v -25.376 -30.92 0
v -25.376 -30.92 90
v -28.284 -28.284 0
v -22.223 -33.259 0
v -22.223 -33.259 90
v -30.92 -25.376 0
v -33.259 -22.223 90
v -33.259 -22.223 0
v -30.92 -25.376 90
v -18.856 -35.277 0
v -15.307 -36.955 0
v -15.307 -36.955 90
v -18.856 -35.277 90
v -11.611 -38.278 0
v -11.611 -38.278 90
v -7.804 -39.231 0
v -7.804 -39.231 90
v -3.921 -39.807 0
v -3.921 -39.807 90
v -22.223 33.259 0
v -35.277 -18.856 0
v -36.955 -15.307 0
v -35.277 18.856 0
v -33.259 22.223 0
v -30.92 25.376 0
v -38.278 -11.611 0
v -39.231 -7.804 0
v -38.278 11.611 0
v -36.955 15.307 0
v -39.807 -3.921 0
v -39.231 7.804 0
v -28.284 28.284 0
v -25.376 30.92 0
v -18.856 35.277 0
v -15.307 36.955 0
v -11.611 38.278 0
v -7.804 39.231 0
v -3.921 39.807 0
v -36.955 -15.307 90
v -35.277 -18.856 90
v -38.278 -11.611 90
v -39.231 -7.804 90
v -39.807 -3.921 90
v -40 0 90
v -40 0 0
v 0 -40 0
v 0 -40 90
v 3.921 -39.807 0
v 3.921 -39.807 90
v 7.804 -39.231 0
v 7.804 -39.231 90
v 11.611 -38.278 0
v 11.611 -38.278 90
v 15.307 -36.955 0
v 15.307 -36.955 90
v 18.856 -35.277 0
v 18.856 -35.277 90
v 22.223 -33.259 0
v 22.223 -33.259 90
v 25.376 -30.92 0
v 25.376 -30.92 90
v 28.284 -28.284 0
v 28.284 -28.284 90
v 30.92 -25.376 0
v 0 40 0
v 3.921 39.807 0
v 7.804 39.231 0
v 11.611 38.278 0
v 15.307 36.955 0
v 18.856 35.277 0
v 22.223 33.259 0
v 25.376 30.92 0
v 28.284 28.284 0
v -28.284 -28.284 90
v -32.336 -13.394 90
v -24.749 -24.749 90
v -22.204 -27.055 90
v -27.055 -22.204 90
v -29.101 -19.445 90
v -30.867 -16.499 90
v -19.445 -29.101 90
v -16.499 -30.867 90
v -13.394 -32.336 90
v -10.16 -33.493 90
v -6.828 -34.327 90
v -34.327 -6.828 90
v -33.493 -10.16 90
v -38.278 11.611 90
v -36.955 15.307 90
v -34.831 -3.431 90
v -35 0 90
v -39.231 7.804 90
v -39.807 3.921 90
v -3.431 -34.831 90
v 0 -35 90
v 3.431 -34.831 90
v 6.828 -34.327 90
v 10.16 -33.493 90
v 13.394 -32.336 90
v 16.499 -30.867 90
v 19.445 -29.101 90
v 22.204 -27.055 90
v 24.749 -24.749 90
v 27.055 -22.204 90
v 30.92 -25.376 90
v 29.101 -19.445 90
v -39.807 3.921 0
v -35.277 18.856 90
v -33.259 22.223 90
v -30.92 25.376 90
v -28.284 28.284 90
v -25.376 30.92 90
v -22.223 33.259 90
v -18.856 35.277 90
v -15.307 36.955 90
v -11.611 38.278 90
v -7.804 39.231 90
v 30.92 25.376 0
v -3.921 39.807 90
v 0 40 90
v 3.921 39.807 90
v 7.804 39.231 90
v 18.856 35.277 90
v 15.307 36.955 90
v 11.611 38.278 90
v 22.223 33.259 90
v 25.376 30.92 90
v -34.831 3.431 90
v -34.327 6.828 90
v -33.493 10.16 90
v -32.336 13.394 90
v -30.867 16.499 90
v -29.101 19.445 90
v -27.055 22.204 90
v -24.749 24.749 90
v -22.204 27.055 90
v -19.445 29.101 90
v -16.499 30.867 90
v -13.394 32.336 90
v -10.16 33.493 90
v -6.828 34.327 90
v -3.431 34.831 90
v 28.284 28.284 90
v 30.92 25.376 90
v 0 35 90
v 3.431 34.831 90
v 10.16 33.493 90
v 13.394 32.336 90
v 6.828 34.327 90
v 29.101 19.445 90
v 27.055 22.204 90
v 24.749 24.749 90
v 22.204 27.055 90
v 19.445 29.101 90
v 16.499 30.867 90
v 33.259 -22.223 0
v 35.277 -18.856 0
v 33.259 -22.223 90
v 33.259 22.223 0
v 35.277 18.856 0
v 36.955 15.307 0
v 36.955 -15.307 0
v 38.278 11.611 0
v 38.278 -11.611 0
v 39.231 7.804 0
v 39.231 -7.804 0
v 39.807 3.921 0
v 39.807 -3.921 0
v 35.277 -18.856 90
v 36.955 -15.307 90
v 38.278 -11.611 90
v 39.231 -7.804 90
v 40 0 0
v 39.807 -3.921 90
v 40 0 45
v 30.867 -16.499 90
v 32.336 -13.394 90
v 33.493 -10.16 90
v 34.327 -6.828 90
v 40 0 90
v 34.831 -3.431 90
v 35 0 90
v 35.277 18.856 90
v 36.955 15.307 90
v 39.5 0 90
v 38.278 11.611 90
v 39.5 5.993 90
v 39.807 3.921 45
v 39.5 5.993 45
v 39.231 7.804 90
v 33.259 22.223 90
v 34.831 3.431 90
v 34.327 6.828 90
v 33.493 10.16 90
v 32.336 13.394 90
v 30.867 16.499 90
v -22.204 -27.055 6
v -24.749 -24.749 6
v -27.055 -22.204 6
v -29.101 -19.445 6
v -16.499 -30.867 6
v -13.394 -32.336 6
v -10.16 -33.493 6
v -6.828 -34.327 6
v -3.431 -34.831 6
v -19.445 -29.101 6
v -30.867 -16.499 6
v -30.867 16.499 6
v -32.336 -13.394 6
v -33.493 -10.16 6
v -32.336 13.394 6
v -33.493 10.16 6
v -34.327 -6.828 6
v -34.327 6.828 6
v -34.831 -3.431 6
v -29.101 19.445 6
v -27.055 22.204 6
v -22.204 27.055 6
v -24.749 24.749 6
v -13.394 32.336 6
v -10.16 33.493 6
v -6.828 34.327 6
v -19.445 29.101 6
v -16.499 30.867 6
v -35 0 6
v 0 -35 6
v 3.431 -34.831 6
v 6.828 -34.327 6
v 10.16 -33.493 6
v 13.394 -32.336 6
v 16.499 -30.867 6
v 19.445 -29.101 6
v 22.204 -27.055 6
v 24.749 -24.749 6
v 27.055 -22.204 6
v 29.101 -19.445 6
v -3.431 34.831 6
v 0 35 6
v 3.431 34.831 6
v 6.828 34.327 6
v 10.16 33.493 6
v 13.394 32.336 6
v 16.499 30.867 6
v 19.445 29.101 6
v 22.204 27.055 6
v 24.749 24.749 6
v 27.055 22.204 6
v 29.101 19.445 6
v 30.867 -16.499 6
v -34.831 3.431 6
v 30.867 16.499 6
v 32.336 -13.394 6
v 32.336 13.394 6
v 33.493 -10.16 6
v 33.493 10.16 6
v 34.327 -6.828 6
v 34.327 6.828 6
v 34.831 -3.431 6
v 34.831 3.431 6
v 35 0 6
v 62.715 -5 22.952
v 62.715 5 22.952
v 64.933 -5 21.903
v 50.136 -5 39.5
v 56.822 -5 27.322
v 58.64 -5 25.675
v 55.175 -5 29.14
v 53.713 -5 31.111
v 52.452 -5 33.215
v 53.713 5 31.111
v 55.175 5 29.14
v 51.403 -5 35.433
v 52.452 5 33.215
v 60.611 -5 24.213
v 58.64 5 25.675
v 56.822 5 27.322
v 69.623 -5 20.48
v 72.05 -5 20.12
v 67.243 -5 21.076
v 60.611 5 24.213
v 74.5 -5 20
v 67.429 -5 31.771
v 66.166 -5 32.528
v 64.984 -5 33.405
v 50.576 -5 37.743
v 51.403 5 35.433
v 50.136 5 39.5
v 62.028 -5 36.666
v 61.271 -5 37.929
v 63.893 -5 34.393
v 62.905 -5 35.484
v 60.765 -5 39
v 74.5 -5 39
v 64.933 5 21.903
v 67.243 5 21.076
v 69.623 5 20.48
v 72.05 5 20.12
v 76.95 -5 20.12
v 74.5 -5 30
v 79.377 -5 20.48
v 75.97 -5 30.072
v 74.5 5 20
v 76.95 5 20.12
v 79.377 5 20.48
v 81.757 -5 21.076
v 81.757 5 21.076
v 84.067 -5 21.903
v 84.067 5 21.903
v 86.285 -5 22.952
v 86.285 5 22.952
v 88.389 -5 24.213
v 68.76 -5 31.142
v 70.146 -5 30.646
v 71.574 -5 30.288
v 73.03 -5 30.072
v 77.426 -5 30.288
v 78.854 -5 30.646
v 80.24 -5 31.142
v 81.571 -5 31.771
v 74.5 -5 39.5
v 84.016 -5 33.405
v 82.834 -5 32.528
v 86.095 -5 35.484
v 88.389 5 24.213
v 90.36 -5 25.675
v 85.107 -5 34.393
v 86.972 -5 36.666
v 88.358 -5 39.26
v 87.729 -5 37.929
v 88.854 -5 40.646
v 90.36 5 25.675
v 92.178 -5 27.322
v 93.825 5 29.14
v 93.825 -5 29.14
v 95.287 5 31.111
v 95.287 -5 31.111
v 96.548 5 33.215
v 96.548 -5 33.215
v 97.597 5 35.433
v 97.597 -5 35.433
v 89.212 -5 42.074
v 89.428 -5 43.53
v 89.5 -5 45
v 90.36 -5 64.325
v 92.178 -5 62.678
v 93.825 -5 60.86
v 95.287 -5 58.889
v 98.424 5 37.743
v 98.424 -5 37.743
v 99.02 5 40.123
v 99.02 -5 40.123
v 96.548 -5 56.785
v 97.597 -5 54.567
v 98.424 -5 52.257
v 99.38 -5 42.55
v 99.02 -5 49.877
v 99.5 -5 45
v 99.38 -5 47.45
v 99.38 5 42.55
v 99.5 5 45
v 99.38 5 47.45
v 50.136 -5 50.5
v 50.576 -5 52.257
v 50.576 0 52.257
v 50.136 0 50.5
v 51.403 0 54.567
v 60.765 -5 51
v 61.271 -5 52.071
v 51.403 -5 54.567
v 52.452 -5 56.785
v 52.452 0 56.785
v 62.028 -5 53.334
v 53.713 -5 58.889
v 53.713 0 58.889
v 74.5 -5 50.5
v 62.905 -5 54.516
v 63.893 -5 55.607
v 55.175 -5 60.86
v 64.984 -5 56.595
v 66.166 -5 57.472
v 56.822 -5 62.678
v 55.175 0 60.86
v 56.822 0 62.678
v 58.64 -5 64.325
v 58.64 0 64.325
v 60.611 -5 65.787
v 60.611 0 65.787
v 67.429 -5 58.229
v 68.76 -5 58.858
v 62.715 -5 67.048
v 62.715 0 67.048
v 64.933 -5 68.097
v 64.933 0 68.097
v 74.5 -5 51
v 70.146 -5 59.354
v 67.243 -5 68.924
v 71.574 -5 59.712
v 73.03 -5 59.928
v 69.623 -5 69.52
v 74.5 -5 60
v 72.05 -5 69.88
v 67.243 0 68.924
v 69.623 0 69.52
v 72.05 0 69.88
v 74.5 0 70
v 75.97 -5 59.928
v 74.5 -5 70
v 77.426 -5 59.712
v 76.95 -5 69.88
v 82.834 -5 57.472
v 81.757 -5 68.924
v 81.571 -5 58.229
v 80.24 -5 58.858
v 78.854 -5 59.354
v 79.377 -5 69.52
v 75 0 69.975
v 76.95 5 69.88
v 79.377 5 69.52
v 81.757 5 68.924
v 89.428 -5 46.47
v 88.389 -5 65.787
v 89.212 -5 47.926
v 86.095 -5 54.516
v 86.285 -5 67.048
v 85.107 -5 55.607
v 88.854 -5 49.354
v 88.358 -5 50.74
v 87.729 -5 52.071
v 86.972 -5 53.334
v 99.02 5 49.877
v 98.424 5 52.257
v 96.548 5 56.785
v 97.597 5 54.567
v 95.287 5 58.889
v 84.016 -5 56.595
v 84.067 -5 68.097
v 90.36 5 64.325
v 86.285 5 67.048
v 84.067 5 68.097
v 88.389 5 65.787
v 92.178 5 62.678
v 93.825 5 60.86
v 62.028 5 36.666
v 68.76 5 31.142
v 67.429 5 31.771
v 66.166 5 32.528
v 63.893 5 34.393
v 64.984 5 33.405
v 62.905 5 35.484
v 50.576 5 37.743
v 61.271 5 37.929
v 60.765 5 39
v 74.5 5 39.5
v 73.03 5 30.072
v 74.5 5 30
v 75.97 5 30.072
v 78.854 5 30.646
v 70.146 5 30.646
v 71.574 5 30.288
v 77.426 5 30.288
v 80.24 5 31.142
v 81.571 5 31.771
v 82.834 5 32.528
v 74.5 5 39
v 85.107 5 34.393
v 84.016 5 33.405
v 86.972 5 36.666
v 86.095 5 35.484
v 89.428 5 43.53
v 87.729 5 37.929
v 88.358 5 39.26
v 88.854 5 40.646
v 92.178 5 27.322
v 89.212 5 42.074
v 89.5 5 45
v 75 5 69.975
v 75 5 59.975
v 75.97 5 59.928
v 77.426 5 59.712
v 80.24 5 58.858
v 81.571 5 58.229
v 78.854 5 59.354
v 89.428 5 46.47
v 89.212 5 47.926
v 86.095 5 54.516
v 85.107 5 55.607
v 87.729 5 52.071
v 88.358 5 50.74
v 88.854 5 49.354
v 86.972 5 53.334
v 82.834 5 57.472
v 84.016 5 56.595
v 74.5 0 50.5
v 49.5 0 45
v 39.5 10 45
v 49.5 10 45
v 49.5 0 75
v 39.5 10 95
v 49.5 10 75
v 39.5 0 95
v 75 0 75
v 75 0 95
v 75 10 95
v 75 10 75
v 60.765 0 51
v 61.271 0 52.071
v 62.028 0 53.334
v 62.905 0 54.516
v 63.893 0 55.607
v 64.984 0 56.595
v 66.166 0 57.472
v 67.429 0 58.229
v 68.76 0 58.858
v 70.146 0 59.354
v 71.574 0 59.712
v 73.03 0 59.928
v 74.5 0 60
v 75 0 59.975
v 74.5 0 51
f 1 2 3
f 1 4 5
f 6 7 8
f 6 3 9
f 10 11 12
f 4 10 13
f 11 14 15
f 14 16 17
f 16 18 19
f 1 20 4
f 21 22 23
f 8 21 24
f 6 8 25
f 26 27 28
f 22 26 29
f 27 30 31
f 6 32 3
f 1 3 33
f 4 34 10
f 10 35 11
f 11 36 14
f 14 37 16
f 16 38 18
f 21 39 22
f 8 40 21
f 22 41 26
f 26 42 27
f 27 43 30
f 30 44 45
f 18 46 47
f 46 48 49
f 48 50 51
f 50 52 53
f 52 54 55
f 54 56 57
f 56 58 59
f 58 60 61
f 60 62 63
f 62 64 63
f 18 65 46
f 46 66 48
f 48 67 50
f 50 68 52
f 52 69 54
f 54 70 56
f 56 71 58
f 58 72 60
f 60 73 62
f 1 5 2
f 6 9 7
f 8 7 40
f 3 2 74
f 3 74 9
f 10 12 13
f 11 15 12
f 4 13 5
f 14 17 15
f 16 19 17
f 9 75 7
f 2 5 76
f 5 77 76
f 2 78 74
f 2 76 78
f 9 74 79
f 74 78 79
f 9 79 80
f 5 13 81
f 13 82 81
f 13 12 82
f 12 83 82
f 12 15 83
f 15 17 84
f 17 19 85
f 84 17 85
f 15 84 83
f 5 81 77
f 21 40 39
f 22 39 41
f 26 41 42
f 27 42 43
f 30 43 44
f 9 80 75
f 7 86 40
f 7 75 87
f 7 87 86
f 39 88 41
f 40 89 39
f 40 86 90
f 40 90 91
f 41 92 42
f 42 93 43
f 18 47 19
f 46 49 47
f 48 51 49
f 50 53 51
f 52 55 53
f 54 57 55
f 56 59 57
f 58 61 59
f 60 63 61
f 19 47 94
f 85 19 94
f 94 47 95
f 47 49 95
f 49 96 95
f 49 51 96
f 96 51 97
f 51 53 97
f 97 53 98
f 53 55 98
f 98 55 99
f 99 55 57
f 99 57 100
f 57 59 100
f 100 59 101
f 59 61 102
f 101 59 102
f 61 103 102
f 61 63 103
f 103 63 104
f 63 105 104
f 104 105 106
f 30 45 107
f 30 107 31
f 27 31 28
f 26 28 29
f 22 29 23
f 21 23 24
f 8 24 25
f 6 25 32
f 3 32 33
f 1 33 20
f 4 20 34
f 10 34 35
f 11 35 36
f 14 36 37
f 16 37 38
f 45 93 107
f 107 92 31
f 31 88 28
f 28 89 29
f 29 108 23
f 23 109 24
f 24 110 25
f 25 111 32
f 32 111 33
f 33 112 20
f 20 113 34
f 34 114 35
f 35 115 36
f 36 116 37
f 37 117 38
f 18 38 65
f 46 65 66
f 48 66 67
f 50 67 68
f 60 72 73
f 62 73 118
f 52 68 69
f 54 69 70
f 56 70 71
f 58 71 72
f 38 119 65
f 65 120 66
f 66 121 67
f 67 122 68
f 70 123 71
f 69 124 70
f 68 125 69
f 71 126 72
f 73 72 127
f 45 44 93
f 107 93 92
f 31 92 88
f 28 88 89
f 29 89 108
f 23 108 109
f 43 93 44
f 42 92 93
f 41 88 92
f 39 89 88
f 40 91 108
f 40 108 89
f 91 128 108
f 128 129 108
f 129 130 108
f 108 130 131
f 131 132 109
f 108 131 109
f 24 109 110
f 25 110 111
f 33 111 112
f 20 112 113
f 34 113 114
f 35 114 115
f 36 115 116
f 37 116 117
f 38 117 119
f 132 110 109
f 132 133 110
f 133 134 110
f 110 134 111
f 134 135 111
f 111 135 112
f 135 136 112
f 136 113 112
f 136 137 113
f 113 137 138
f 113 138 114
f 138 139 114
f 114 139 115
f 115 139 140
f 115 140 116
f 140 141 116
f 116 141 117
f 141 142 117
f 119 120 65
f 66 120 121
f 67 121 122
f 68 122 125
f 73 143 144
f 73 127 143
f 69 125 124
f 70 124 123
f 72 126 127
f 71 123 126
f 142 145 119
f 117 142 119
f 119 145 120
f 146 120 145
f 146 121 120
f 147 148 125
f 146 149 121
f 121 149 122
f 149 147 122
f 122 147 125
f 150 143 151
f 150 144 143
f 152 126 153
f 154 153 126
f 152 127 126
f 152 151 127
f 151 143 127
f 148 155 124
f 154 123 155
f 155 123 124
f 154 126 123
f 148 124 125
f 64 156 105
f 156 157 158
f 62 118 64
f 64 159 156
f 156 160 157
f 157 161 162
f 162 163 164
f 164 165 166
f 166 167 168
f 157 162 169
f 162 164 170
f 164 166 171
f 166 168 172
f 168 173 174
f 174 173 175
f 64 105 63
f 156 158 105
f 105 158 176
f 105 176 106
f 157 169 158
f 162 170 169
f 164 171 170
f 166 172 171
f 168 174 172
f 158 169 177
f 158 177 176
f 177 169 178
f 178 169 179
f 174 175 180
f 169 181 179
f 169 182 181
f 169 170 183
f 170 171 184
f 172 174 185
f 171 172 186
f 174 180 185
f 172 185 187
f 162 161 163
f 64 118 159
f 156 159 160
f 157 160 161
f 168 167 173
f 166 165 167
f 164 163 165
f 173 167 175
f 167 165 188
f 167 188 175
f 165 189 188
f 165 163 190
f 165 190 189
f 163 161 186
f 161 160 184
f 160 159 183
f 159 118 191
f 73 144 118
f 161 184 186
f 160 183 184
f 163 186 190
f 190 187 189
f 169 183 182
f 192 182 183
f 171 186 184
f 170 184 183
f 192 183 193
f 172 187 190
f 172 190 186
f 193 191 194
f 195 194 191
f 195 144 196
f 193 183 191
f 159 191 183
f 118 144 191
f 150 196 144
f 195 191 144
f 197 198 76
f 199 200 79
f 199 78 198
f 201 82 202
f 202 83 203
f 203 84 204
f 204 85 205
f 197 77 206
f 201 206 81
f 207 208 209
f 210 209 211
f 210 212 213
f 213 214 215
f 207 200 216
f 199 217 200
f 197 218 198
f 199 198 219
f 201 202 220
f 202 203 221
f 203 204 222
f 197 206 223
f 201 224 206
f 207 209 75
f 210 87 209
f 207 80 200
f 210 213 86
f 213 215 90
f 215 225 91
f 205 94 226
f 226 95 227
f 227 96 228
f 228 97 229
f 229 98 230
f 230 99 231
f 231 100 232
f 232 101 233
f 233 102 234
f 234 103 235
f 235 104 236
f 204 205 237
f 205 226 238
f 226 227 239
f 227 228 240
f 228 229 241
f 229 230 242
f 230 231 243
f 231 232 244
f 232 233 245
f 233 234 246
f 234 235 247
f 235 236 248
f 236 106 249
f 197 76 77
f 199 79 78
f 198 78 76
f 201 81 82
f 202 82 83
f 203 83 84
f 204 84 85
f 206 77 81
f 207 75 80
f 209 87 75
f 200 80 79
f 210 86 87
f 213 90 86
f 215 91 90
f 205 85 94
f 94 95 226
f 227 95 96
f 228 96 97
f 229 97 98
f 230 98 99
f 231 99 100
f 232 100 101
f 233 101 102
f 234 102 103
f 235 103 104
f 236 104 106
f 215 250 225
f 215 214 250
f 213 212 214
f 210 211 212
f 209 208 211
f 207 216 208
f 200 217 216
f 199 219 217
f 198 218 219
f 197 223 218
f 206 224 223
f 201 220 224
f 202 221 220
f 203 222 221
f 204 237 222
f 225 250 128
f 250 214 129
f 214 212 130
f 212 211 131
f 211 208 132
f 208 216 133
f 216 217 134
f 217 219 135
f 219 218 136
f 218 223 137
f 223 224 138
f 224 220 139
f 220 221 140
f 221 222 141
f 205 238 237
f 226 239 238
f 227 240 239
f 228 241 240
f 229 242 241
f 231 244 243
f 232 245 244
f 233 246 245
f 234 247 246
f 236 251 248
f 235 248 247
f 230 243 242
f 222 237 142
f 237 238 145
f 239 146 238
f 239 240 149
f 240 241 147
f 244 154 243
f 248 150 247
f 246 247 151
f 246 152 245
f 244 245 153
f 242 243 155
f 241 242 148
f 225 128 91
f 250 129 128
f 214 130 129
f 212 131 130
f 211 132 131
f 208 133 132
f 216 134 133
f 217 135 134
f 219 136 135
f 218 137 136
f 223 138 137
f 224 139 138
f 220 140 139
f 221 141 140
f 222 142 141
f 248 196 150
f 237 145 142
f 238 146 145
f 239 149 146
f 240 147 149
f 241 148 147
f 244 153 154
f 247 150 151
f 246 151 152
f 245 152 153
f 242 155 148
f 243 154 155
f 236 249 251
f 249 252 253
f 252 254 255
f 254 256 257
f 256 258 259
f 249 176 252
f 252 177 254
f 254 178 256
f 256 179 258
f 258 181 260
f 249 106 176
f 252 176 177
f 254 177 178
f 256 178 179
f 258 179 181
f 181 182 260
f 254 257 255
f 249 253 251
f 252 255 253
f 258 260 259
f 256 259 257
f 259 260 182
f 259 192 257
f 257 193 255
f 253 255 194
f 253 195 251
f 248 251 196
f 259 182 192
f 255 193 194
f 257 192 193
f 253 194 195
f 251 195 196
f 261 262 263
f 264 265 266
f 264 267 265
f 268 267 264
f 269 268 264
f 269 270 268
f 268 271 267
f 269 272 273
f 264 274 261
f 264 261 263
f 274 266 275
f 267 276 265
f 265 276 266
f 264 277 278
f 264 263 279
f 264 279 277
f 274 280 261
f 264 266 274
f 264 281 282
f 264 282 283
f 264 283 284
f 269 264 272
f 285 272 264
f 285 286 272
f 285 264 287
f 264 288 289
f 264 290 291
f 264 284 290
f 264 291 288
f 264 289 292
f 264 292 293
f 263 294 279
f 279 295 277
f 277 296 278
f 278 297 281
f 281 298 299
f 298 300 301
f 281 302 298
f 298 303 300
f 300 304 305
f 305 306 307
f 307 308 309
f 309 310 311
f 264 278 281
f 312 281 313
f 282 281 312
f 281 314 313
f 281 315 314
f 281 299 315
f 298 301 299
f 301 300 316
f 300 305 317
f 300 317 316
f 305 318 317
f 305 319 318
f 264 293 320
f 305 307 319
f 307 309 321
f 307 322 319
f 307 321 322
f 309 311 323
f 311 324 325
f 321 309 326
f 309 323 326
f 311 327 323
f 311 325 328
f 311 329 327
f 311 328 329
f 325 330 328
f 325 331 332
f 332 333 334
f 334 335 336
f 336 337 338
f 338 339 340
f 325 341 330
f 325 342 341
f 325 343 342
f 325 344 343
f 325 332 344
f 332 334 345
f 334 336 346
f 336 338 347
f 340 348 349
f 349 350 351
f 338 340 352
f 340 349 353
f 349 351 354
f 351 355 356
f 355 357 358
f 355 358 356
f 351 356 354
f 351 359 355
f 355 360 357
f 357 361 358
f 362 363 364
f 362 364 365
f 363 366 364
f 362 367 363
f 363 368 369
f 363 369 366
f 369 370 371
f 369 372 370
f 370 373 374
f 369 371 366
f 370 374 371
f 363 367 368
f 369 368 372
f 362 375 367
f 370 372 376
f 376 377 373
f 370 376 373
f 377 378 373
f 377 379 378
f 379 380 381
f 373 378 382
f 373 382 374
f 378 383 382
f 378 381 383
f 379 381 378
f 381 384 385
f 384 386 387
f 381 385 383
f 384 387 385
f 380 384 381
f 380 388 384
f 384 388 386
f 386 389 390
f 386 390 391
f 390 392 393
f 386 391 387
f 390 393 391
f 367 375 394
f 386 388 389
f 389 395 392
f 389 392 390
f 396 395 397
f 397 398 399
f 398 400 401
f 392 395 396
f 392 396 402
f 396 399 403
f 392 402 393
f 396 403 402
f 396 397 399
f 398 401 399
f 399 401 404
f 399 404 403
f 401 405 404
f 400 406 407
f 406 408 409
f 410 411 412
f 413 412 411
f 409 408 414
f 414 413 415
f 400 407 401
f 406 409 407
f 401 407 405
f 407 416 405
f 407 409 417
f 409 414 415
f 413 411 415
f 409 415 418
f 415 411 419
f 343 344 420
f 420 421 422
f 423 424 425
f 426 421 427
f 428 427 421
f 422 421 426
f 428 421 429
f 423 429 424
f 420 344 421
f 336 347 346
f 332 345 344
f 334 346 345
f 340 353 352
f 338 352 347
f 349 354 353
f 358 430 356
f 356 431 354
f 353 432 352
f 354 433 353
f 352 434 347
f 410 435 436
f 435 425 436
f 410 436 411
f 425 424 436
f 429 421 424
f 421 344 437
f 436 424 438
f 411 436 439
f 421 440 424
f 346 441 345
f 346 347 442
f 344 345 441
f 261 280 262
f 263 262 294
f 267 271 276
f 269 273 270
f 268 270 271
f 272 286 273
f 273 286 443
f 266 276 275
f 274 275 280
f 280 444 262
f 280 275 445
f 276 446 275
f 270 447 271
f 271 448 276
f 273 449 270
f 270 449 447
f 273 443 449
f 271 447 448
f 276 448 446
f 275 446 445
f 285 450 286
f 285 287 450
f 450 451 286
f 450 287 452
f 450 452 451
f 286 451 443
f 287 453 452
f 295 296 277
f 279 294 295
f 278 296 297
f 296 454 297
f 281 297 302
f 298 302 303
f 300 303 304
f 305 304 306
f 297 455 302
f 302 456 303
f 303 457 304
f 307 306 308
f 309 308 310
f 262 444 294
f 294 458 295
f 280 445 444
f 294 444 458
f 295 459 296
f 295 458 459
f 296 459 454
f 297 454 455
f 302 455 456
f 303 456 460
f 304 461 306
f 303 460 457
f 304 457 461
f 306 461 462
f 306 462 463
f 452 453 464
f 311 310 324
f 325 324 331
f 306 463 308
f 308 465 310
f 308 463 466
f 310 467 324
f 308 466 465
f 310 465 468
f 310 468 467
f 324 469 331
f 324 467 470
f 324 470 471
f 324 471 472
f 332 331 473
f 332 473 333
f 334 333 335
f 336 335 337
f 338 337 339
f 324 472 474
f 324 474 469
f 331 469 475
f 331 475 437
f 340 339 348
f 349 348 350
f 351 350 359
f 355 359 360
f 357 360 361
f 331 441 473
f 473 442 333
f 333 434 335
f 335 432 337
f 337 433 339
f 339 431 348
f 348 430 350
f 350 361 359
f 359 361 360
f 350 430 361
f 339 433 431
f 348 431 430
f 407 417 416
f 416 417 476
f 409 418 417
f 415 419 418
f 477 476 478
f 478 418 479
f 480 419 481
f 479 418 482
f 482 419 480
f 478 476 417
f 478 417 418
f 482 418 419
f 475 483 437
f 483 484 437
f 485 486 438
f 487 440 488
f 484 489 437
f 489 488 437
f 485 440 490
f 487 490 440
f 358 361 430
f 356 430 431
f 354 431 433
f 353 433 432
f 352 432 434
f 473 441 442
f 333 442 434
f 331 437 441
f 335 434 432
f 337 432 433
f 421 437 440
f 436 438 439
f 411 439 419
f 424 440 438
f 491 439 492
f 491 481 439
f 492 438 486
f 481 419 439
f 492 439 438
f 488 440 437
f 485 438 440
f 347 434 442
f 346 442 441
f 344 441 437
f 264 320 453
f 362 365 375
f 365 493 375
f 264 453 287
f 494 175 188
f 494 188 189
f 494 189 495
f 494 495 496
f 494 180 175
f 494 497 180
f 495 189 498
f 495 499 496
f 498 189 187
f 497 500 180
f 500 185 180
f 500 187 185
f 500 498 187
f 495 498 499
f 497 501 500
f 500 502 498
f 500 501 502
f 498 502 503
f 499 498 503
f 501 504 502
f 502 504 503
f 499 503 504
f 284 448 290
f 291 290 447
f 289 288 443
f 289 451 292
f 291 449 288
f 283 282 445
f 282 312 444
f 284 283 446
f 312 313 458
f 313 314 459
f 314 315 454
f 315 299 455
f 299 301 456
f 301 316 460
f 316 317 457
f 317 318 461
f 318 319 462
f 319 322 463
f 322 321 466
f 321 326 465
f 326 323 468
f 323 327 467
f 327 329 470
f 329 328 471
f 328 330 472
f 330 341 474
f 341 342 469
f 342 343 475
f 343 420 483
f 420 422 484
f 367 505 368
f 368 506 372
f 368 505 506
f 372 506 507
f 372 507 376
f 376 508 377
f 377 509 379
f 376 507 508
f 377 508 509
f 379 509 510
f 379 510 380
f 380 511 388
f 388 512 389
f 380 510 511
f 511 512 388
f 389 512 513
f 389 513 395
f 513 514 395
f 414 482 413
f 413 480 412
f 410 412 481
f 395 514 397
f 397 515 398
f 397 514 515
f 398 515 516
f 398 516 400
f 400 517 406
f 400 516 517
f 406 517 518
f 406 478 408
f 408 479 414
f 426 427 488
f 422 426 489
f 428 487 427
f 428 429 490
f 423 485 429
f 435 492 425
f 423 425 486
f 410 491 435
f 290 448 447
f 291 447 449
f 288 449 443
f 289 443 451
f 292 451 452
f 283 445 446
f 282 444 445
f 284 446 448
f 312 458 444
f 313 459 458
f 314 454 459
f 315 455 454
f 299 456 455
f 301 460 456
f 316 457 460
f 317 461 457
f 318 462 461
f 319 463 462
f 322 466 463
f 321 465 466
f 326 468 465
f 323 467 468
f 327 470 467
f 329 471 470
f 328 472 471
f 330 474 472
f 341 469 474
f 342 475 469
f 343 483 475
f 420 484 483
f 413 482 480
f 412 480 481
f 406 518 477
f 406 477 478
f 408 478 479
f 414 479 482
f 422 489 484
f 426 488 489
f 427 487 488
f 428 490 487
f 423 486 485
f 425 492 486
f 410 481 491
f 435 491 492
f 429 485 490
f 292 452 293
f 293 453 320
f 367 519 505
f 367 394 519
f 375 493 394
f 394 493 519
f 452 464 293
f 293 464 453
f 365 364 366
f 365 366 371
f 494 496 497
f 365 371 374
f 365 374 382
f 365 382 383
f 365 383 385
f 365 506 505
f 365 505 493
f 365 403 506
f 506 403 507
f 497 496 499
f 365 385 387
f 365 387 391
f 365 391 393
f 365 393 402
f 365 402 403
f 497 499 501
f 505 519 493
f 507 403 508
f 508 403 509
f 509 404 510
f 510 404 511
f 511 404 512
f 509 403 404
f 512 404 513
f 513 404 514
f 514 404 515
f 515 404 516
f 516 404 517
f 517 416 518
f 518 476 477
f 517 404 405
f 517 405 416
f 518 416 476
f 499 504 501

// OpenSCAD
// OpenSCAD Mug with Handle
// Global rendering quality (higher value = smoother curves)
$fn = 64;

// Mug body parameters
mug_outer_radius = 80 / 2; // 40mm
mug_inner_radius = 70 / 2; // 35mm
mug_height = 90;
mug_bottom_thickness = 6;

// Handle parameters
handle_thickness = 10;          // Thickness of the handle material
handle_inner_width = 25;        // Internal width of the finger hole (X direction)
handle_inner_height = 30;       // Internal height of the finger hole (Z direction)

// Overlap for robust union between handle and mug body, and between handle components
// A small positive value ensures parts slightly penetrate each other,
// which helps OpenSCAD create a manifold solid and avoids Z-fighting artifacts.
handle_overlap_epsilon = 0.5; // Example: 0.5mm overlap

module mug_body() {
    difference() {
        // Outer cylinder of the mug
        cylinder(h = mug_height, r = mug_outer_radius);

        // Inner hollow part
        // Lifted by mug_bottom_thickness to create the solid bottom
        // Slightly increased height to avoid Z-fighting artifacts on the top surface
        translate([0, 0, mug_bottom_thickness])
            cylinder(h = mug_height - mug_bottom_thickness + handle_overlap_epsilon, r = mug_inner_radius);
    }
}

module mug_handle() {
    // Calculate dimensions for the D-shape handle
    // Total height of the handle from top edge to bottom edge
    handle_total_height = handle_inner_height + 2 * handle_thickness;
    // Outer radius of the D-arc (half of total height)
    outer_d_arc_radius = handle_total_height / 2;
    // Inner radius of the D-arc (half of inner height)
    inner_d_arc_radius = handle_inner_height / 2;

    // Position the handle:
    // Translate its "attachment point" (the X-coordinate where it meets the mug)
    // to mug_outer_radius. We subtract handle_overlap_epsilon to embed it slightly.
    // Its Y-center is 0 (aligned with mug's Y axis).
    // Its Z-center is mug_height / 2 (aligned with mug's height center).
    translate([
        mug_outer_radius - handle_overlap_epsilon, // X: start slightly inside mug
        0,                                          // Y: centered
        mug_height / 2                              // Z: centered
    ]) {
        // Build the handle using difference between its outer solid shape and its inner cut-out shape.
        difference() {
            // 1. Outer solid handle shape
            union() {
                // Rectangular part of the outer handle (from mug to the start of the arc)
                // In its local coordinate system:
                // X starts at -handle_overlap_epsilon (to embed into the mug)
                // X ends at handle_thickness + handle_inner_width (where the arc begins)
                cube([
                    handle_thickness + handle_inner_width + handle_overlap_epsilon, // X-dimension
                    handle_thickness,                                               // Y-thickness
                    handle_total_height                                             // Z-height
                ], center = [
                    (handle_thickness + handle_inner_width + handle_overlap_epsilon) / 2 - handle_overlap_epsilon, // X-center to align start at -overlap_epsilon
                    0, // Y-center
                    0  // Z-center
                ]);

                // Outer arc part (semi-cylinder)
                // The arc's straight edge is at X = handle_thickness + handle_inner_width.
                // We translate to this point for the cylinder's local origin.
                translate([
                    handle_thickness + handle_inner_width, // X: where the arc's straight edge is
                    0,                                     // Y
                    0                                      // Z
                ])
                rotate([90, 0, 0]) { // Rotate cylinder (default along Z) so its axis is along Y, profile in XZ.
                    difference() {
                        cylinder(r = outer_d_arc_radius, h = handle_thickness, center = true);
                        // Cut off the "left" half of the cylinder to form the D-shape arc.
                        // The cube starts outside the cylinder's negative X range to ensure a full cut.
                        translate([-outer_d_arc_radius - handle_overlap_epsilon * 2, 0, 0])
                            cube([outer_d_arc_radius * 2 + handle_overlap_epsilon * 4, handle_thickness * 1.1, outer_d_arc_radius * 2 + handle_overlap_epsilon * 4], center=true);
                    }
                }
            }

            // 2. Inner cut-out shape (finger hole)
            // This starts after the mug-connecting material, at X = handle_thickness.
            translate([
                handle_thickness, // X: Start of finger hole relative to mug's outer surface
                0,                // Y: centered
                0                 // Z: centered
            ]) {
                union() {
                    // Straight part of the finger hole cut-out
                    cube([
                        handle_inner_width + handle_overlap_epsilon, // X: Inner width + slight overlap into arc for clean cut
                        handle_thickness * 1.1,                      // Y: Slightly larger than handle_thickness for clean cut
                        handle_inner_height                          // Z: Inner height
                    ], center=[
                        (handle_inner_width + handle_overlap_epsilon) / 2, // X-center
                        0,                                               // Y-center
                        0                                                // Z-center
                    ]);

                    // Inner arc part of the finger hole cut-out
                    // The inner arc's straight edge is at X = handle_inner_width (relative to its own translate).
                    translate([
                        handle_inner_width, // X: where the inner arc's straight edge is
                        0,
                        0
                    ])
                    rotate([90, 0, 0]) { // Same rotation as outer arc
                        difference() {
                            cylinder(r = inner_d_arc_radius, h = handle_thickness * 1.1, center = true); // Slightly larger height for clean cut
                            // Cut off the "left" half of the inner cylinder.
                            translate([-inner_d_arc_radius - handle_overlap_epsilon * 2, 0, 0])
                                cube([inner_d_arc_radius * 2 + handle_overlap_epsilon * 4, handle_thickness * 1.2, inner_d_arc_radius * 2 + handle_overlap_epsilon * 4], center=true);
                        }
                    }
                }
            }
        } // End of difference for the handle
    } // End of translate for the handle position
} // End of mug_handle module

// Assemble the complete mug by combining the body and the handle
union() {
    mug_body();
    mug_handle();
}
